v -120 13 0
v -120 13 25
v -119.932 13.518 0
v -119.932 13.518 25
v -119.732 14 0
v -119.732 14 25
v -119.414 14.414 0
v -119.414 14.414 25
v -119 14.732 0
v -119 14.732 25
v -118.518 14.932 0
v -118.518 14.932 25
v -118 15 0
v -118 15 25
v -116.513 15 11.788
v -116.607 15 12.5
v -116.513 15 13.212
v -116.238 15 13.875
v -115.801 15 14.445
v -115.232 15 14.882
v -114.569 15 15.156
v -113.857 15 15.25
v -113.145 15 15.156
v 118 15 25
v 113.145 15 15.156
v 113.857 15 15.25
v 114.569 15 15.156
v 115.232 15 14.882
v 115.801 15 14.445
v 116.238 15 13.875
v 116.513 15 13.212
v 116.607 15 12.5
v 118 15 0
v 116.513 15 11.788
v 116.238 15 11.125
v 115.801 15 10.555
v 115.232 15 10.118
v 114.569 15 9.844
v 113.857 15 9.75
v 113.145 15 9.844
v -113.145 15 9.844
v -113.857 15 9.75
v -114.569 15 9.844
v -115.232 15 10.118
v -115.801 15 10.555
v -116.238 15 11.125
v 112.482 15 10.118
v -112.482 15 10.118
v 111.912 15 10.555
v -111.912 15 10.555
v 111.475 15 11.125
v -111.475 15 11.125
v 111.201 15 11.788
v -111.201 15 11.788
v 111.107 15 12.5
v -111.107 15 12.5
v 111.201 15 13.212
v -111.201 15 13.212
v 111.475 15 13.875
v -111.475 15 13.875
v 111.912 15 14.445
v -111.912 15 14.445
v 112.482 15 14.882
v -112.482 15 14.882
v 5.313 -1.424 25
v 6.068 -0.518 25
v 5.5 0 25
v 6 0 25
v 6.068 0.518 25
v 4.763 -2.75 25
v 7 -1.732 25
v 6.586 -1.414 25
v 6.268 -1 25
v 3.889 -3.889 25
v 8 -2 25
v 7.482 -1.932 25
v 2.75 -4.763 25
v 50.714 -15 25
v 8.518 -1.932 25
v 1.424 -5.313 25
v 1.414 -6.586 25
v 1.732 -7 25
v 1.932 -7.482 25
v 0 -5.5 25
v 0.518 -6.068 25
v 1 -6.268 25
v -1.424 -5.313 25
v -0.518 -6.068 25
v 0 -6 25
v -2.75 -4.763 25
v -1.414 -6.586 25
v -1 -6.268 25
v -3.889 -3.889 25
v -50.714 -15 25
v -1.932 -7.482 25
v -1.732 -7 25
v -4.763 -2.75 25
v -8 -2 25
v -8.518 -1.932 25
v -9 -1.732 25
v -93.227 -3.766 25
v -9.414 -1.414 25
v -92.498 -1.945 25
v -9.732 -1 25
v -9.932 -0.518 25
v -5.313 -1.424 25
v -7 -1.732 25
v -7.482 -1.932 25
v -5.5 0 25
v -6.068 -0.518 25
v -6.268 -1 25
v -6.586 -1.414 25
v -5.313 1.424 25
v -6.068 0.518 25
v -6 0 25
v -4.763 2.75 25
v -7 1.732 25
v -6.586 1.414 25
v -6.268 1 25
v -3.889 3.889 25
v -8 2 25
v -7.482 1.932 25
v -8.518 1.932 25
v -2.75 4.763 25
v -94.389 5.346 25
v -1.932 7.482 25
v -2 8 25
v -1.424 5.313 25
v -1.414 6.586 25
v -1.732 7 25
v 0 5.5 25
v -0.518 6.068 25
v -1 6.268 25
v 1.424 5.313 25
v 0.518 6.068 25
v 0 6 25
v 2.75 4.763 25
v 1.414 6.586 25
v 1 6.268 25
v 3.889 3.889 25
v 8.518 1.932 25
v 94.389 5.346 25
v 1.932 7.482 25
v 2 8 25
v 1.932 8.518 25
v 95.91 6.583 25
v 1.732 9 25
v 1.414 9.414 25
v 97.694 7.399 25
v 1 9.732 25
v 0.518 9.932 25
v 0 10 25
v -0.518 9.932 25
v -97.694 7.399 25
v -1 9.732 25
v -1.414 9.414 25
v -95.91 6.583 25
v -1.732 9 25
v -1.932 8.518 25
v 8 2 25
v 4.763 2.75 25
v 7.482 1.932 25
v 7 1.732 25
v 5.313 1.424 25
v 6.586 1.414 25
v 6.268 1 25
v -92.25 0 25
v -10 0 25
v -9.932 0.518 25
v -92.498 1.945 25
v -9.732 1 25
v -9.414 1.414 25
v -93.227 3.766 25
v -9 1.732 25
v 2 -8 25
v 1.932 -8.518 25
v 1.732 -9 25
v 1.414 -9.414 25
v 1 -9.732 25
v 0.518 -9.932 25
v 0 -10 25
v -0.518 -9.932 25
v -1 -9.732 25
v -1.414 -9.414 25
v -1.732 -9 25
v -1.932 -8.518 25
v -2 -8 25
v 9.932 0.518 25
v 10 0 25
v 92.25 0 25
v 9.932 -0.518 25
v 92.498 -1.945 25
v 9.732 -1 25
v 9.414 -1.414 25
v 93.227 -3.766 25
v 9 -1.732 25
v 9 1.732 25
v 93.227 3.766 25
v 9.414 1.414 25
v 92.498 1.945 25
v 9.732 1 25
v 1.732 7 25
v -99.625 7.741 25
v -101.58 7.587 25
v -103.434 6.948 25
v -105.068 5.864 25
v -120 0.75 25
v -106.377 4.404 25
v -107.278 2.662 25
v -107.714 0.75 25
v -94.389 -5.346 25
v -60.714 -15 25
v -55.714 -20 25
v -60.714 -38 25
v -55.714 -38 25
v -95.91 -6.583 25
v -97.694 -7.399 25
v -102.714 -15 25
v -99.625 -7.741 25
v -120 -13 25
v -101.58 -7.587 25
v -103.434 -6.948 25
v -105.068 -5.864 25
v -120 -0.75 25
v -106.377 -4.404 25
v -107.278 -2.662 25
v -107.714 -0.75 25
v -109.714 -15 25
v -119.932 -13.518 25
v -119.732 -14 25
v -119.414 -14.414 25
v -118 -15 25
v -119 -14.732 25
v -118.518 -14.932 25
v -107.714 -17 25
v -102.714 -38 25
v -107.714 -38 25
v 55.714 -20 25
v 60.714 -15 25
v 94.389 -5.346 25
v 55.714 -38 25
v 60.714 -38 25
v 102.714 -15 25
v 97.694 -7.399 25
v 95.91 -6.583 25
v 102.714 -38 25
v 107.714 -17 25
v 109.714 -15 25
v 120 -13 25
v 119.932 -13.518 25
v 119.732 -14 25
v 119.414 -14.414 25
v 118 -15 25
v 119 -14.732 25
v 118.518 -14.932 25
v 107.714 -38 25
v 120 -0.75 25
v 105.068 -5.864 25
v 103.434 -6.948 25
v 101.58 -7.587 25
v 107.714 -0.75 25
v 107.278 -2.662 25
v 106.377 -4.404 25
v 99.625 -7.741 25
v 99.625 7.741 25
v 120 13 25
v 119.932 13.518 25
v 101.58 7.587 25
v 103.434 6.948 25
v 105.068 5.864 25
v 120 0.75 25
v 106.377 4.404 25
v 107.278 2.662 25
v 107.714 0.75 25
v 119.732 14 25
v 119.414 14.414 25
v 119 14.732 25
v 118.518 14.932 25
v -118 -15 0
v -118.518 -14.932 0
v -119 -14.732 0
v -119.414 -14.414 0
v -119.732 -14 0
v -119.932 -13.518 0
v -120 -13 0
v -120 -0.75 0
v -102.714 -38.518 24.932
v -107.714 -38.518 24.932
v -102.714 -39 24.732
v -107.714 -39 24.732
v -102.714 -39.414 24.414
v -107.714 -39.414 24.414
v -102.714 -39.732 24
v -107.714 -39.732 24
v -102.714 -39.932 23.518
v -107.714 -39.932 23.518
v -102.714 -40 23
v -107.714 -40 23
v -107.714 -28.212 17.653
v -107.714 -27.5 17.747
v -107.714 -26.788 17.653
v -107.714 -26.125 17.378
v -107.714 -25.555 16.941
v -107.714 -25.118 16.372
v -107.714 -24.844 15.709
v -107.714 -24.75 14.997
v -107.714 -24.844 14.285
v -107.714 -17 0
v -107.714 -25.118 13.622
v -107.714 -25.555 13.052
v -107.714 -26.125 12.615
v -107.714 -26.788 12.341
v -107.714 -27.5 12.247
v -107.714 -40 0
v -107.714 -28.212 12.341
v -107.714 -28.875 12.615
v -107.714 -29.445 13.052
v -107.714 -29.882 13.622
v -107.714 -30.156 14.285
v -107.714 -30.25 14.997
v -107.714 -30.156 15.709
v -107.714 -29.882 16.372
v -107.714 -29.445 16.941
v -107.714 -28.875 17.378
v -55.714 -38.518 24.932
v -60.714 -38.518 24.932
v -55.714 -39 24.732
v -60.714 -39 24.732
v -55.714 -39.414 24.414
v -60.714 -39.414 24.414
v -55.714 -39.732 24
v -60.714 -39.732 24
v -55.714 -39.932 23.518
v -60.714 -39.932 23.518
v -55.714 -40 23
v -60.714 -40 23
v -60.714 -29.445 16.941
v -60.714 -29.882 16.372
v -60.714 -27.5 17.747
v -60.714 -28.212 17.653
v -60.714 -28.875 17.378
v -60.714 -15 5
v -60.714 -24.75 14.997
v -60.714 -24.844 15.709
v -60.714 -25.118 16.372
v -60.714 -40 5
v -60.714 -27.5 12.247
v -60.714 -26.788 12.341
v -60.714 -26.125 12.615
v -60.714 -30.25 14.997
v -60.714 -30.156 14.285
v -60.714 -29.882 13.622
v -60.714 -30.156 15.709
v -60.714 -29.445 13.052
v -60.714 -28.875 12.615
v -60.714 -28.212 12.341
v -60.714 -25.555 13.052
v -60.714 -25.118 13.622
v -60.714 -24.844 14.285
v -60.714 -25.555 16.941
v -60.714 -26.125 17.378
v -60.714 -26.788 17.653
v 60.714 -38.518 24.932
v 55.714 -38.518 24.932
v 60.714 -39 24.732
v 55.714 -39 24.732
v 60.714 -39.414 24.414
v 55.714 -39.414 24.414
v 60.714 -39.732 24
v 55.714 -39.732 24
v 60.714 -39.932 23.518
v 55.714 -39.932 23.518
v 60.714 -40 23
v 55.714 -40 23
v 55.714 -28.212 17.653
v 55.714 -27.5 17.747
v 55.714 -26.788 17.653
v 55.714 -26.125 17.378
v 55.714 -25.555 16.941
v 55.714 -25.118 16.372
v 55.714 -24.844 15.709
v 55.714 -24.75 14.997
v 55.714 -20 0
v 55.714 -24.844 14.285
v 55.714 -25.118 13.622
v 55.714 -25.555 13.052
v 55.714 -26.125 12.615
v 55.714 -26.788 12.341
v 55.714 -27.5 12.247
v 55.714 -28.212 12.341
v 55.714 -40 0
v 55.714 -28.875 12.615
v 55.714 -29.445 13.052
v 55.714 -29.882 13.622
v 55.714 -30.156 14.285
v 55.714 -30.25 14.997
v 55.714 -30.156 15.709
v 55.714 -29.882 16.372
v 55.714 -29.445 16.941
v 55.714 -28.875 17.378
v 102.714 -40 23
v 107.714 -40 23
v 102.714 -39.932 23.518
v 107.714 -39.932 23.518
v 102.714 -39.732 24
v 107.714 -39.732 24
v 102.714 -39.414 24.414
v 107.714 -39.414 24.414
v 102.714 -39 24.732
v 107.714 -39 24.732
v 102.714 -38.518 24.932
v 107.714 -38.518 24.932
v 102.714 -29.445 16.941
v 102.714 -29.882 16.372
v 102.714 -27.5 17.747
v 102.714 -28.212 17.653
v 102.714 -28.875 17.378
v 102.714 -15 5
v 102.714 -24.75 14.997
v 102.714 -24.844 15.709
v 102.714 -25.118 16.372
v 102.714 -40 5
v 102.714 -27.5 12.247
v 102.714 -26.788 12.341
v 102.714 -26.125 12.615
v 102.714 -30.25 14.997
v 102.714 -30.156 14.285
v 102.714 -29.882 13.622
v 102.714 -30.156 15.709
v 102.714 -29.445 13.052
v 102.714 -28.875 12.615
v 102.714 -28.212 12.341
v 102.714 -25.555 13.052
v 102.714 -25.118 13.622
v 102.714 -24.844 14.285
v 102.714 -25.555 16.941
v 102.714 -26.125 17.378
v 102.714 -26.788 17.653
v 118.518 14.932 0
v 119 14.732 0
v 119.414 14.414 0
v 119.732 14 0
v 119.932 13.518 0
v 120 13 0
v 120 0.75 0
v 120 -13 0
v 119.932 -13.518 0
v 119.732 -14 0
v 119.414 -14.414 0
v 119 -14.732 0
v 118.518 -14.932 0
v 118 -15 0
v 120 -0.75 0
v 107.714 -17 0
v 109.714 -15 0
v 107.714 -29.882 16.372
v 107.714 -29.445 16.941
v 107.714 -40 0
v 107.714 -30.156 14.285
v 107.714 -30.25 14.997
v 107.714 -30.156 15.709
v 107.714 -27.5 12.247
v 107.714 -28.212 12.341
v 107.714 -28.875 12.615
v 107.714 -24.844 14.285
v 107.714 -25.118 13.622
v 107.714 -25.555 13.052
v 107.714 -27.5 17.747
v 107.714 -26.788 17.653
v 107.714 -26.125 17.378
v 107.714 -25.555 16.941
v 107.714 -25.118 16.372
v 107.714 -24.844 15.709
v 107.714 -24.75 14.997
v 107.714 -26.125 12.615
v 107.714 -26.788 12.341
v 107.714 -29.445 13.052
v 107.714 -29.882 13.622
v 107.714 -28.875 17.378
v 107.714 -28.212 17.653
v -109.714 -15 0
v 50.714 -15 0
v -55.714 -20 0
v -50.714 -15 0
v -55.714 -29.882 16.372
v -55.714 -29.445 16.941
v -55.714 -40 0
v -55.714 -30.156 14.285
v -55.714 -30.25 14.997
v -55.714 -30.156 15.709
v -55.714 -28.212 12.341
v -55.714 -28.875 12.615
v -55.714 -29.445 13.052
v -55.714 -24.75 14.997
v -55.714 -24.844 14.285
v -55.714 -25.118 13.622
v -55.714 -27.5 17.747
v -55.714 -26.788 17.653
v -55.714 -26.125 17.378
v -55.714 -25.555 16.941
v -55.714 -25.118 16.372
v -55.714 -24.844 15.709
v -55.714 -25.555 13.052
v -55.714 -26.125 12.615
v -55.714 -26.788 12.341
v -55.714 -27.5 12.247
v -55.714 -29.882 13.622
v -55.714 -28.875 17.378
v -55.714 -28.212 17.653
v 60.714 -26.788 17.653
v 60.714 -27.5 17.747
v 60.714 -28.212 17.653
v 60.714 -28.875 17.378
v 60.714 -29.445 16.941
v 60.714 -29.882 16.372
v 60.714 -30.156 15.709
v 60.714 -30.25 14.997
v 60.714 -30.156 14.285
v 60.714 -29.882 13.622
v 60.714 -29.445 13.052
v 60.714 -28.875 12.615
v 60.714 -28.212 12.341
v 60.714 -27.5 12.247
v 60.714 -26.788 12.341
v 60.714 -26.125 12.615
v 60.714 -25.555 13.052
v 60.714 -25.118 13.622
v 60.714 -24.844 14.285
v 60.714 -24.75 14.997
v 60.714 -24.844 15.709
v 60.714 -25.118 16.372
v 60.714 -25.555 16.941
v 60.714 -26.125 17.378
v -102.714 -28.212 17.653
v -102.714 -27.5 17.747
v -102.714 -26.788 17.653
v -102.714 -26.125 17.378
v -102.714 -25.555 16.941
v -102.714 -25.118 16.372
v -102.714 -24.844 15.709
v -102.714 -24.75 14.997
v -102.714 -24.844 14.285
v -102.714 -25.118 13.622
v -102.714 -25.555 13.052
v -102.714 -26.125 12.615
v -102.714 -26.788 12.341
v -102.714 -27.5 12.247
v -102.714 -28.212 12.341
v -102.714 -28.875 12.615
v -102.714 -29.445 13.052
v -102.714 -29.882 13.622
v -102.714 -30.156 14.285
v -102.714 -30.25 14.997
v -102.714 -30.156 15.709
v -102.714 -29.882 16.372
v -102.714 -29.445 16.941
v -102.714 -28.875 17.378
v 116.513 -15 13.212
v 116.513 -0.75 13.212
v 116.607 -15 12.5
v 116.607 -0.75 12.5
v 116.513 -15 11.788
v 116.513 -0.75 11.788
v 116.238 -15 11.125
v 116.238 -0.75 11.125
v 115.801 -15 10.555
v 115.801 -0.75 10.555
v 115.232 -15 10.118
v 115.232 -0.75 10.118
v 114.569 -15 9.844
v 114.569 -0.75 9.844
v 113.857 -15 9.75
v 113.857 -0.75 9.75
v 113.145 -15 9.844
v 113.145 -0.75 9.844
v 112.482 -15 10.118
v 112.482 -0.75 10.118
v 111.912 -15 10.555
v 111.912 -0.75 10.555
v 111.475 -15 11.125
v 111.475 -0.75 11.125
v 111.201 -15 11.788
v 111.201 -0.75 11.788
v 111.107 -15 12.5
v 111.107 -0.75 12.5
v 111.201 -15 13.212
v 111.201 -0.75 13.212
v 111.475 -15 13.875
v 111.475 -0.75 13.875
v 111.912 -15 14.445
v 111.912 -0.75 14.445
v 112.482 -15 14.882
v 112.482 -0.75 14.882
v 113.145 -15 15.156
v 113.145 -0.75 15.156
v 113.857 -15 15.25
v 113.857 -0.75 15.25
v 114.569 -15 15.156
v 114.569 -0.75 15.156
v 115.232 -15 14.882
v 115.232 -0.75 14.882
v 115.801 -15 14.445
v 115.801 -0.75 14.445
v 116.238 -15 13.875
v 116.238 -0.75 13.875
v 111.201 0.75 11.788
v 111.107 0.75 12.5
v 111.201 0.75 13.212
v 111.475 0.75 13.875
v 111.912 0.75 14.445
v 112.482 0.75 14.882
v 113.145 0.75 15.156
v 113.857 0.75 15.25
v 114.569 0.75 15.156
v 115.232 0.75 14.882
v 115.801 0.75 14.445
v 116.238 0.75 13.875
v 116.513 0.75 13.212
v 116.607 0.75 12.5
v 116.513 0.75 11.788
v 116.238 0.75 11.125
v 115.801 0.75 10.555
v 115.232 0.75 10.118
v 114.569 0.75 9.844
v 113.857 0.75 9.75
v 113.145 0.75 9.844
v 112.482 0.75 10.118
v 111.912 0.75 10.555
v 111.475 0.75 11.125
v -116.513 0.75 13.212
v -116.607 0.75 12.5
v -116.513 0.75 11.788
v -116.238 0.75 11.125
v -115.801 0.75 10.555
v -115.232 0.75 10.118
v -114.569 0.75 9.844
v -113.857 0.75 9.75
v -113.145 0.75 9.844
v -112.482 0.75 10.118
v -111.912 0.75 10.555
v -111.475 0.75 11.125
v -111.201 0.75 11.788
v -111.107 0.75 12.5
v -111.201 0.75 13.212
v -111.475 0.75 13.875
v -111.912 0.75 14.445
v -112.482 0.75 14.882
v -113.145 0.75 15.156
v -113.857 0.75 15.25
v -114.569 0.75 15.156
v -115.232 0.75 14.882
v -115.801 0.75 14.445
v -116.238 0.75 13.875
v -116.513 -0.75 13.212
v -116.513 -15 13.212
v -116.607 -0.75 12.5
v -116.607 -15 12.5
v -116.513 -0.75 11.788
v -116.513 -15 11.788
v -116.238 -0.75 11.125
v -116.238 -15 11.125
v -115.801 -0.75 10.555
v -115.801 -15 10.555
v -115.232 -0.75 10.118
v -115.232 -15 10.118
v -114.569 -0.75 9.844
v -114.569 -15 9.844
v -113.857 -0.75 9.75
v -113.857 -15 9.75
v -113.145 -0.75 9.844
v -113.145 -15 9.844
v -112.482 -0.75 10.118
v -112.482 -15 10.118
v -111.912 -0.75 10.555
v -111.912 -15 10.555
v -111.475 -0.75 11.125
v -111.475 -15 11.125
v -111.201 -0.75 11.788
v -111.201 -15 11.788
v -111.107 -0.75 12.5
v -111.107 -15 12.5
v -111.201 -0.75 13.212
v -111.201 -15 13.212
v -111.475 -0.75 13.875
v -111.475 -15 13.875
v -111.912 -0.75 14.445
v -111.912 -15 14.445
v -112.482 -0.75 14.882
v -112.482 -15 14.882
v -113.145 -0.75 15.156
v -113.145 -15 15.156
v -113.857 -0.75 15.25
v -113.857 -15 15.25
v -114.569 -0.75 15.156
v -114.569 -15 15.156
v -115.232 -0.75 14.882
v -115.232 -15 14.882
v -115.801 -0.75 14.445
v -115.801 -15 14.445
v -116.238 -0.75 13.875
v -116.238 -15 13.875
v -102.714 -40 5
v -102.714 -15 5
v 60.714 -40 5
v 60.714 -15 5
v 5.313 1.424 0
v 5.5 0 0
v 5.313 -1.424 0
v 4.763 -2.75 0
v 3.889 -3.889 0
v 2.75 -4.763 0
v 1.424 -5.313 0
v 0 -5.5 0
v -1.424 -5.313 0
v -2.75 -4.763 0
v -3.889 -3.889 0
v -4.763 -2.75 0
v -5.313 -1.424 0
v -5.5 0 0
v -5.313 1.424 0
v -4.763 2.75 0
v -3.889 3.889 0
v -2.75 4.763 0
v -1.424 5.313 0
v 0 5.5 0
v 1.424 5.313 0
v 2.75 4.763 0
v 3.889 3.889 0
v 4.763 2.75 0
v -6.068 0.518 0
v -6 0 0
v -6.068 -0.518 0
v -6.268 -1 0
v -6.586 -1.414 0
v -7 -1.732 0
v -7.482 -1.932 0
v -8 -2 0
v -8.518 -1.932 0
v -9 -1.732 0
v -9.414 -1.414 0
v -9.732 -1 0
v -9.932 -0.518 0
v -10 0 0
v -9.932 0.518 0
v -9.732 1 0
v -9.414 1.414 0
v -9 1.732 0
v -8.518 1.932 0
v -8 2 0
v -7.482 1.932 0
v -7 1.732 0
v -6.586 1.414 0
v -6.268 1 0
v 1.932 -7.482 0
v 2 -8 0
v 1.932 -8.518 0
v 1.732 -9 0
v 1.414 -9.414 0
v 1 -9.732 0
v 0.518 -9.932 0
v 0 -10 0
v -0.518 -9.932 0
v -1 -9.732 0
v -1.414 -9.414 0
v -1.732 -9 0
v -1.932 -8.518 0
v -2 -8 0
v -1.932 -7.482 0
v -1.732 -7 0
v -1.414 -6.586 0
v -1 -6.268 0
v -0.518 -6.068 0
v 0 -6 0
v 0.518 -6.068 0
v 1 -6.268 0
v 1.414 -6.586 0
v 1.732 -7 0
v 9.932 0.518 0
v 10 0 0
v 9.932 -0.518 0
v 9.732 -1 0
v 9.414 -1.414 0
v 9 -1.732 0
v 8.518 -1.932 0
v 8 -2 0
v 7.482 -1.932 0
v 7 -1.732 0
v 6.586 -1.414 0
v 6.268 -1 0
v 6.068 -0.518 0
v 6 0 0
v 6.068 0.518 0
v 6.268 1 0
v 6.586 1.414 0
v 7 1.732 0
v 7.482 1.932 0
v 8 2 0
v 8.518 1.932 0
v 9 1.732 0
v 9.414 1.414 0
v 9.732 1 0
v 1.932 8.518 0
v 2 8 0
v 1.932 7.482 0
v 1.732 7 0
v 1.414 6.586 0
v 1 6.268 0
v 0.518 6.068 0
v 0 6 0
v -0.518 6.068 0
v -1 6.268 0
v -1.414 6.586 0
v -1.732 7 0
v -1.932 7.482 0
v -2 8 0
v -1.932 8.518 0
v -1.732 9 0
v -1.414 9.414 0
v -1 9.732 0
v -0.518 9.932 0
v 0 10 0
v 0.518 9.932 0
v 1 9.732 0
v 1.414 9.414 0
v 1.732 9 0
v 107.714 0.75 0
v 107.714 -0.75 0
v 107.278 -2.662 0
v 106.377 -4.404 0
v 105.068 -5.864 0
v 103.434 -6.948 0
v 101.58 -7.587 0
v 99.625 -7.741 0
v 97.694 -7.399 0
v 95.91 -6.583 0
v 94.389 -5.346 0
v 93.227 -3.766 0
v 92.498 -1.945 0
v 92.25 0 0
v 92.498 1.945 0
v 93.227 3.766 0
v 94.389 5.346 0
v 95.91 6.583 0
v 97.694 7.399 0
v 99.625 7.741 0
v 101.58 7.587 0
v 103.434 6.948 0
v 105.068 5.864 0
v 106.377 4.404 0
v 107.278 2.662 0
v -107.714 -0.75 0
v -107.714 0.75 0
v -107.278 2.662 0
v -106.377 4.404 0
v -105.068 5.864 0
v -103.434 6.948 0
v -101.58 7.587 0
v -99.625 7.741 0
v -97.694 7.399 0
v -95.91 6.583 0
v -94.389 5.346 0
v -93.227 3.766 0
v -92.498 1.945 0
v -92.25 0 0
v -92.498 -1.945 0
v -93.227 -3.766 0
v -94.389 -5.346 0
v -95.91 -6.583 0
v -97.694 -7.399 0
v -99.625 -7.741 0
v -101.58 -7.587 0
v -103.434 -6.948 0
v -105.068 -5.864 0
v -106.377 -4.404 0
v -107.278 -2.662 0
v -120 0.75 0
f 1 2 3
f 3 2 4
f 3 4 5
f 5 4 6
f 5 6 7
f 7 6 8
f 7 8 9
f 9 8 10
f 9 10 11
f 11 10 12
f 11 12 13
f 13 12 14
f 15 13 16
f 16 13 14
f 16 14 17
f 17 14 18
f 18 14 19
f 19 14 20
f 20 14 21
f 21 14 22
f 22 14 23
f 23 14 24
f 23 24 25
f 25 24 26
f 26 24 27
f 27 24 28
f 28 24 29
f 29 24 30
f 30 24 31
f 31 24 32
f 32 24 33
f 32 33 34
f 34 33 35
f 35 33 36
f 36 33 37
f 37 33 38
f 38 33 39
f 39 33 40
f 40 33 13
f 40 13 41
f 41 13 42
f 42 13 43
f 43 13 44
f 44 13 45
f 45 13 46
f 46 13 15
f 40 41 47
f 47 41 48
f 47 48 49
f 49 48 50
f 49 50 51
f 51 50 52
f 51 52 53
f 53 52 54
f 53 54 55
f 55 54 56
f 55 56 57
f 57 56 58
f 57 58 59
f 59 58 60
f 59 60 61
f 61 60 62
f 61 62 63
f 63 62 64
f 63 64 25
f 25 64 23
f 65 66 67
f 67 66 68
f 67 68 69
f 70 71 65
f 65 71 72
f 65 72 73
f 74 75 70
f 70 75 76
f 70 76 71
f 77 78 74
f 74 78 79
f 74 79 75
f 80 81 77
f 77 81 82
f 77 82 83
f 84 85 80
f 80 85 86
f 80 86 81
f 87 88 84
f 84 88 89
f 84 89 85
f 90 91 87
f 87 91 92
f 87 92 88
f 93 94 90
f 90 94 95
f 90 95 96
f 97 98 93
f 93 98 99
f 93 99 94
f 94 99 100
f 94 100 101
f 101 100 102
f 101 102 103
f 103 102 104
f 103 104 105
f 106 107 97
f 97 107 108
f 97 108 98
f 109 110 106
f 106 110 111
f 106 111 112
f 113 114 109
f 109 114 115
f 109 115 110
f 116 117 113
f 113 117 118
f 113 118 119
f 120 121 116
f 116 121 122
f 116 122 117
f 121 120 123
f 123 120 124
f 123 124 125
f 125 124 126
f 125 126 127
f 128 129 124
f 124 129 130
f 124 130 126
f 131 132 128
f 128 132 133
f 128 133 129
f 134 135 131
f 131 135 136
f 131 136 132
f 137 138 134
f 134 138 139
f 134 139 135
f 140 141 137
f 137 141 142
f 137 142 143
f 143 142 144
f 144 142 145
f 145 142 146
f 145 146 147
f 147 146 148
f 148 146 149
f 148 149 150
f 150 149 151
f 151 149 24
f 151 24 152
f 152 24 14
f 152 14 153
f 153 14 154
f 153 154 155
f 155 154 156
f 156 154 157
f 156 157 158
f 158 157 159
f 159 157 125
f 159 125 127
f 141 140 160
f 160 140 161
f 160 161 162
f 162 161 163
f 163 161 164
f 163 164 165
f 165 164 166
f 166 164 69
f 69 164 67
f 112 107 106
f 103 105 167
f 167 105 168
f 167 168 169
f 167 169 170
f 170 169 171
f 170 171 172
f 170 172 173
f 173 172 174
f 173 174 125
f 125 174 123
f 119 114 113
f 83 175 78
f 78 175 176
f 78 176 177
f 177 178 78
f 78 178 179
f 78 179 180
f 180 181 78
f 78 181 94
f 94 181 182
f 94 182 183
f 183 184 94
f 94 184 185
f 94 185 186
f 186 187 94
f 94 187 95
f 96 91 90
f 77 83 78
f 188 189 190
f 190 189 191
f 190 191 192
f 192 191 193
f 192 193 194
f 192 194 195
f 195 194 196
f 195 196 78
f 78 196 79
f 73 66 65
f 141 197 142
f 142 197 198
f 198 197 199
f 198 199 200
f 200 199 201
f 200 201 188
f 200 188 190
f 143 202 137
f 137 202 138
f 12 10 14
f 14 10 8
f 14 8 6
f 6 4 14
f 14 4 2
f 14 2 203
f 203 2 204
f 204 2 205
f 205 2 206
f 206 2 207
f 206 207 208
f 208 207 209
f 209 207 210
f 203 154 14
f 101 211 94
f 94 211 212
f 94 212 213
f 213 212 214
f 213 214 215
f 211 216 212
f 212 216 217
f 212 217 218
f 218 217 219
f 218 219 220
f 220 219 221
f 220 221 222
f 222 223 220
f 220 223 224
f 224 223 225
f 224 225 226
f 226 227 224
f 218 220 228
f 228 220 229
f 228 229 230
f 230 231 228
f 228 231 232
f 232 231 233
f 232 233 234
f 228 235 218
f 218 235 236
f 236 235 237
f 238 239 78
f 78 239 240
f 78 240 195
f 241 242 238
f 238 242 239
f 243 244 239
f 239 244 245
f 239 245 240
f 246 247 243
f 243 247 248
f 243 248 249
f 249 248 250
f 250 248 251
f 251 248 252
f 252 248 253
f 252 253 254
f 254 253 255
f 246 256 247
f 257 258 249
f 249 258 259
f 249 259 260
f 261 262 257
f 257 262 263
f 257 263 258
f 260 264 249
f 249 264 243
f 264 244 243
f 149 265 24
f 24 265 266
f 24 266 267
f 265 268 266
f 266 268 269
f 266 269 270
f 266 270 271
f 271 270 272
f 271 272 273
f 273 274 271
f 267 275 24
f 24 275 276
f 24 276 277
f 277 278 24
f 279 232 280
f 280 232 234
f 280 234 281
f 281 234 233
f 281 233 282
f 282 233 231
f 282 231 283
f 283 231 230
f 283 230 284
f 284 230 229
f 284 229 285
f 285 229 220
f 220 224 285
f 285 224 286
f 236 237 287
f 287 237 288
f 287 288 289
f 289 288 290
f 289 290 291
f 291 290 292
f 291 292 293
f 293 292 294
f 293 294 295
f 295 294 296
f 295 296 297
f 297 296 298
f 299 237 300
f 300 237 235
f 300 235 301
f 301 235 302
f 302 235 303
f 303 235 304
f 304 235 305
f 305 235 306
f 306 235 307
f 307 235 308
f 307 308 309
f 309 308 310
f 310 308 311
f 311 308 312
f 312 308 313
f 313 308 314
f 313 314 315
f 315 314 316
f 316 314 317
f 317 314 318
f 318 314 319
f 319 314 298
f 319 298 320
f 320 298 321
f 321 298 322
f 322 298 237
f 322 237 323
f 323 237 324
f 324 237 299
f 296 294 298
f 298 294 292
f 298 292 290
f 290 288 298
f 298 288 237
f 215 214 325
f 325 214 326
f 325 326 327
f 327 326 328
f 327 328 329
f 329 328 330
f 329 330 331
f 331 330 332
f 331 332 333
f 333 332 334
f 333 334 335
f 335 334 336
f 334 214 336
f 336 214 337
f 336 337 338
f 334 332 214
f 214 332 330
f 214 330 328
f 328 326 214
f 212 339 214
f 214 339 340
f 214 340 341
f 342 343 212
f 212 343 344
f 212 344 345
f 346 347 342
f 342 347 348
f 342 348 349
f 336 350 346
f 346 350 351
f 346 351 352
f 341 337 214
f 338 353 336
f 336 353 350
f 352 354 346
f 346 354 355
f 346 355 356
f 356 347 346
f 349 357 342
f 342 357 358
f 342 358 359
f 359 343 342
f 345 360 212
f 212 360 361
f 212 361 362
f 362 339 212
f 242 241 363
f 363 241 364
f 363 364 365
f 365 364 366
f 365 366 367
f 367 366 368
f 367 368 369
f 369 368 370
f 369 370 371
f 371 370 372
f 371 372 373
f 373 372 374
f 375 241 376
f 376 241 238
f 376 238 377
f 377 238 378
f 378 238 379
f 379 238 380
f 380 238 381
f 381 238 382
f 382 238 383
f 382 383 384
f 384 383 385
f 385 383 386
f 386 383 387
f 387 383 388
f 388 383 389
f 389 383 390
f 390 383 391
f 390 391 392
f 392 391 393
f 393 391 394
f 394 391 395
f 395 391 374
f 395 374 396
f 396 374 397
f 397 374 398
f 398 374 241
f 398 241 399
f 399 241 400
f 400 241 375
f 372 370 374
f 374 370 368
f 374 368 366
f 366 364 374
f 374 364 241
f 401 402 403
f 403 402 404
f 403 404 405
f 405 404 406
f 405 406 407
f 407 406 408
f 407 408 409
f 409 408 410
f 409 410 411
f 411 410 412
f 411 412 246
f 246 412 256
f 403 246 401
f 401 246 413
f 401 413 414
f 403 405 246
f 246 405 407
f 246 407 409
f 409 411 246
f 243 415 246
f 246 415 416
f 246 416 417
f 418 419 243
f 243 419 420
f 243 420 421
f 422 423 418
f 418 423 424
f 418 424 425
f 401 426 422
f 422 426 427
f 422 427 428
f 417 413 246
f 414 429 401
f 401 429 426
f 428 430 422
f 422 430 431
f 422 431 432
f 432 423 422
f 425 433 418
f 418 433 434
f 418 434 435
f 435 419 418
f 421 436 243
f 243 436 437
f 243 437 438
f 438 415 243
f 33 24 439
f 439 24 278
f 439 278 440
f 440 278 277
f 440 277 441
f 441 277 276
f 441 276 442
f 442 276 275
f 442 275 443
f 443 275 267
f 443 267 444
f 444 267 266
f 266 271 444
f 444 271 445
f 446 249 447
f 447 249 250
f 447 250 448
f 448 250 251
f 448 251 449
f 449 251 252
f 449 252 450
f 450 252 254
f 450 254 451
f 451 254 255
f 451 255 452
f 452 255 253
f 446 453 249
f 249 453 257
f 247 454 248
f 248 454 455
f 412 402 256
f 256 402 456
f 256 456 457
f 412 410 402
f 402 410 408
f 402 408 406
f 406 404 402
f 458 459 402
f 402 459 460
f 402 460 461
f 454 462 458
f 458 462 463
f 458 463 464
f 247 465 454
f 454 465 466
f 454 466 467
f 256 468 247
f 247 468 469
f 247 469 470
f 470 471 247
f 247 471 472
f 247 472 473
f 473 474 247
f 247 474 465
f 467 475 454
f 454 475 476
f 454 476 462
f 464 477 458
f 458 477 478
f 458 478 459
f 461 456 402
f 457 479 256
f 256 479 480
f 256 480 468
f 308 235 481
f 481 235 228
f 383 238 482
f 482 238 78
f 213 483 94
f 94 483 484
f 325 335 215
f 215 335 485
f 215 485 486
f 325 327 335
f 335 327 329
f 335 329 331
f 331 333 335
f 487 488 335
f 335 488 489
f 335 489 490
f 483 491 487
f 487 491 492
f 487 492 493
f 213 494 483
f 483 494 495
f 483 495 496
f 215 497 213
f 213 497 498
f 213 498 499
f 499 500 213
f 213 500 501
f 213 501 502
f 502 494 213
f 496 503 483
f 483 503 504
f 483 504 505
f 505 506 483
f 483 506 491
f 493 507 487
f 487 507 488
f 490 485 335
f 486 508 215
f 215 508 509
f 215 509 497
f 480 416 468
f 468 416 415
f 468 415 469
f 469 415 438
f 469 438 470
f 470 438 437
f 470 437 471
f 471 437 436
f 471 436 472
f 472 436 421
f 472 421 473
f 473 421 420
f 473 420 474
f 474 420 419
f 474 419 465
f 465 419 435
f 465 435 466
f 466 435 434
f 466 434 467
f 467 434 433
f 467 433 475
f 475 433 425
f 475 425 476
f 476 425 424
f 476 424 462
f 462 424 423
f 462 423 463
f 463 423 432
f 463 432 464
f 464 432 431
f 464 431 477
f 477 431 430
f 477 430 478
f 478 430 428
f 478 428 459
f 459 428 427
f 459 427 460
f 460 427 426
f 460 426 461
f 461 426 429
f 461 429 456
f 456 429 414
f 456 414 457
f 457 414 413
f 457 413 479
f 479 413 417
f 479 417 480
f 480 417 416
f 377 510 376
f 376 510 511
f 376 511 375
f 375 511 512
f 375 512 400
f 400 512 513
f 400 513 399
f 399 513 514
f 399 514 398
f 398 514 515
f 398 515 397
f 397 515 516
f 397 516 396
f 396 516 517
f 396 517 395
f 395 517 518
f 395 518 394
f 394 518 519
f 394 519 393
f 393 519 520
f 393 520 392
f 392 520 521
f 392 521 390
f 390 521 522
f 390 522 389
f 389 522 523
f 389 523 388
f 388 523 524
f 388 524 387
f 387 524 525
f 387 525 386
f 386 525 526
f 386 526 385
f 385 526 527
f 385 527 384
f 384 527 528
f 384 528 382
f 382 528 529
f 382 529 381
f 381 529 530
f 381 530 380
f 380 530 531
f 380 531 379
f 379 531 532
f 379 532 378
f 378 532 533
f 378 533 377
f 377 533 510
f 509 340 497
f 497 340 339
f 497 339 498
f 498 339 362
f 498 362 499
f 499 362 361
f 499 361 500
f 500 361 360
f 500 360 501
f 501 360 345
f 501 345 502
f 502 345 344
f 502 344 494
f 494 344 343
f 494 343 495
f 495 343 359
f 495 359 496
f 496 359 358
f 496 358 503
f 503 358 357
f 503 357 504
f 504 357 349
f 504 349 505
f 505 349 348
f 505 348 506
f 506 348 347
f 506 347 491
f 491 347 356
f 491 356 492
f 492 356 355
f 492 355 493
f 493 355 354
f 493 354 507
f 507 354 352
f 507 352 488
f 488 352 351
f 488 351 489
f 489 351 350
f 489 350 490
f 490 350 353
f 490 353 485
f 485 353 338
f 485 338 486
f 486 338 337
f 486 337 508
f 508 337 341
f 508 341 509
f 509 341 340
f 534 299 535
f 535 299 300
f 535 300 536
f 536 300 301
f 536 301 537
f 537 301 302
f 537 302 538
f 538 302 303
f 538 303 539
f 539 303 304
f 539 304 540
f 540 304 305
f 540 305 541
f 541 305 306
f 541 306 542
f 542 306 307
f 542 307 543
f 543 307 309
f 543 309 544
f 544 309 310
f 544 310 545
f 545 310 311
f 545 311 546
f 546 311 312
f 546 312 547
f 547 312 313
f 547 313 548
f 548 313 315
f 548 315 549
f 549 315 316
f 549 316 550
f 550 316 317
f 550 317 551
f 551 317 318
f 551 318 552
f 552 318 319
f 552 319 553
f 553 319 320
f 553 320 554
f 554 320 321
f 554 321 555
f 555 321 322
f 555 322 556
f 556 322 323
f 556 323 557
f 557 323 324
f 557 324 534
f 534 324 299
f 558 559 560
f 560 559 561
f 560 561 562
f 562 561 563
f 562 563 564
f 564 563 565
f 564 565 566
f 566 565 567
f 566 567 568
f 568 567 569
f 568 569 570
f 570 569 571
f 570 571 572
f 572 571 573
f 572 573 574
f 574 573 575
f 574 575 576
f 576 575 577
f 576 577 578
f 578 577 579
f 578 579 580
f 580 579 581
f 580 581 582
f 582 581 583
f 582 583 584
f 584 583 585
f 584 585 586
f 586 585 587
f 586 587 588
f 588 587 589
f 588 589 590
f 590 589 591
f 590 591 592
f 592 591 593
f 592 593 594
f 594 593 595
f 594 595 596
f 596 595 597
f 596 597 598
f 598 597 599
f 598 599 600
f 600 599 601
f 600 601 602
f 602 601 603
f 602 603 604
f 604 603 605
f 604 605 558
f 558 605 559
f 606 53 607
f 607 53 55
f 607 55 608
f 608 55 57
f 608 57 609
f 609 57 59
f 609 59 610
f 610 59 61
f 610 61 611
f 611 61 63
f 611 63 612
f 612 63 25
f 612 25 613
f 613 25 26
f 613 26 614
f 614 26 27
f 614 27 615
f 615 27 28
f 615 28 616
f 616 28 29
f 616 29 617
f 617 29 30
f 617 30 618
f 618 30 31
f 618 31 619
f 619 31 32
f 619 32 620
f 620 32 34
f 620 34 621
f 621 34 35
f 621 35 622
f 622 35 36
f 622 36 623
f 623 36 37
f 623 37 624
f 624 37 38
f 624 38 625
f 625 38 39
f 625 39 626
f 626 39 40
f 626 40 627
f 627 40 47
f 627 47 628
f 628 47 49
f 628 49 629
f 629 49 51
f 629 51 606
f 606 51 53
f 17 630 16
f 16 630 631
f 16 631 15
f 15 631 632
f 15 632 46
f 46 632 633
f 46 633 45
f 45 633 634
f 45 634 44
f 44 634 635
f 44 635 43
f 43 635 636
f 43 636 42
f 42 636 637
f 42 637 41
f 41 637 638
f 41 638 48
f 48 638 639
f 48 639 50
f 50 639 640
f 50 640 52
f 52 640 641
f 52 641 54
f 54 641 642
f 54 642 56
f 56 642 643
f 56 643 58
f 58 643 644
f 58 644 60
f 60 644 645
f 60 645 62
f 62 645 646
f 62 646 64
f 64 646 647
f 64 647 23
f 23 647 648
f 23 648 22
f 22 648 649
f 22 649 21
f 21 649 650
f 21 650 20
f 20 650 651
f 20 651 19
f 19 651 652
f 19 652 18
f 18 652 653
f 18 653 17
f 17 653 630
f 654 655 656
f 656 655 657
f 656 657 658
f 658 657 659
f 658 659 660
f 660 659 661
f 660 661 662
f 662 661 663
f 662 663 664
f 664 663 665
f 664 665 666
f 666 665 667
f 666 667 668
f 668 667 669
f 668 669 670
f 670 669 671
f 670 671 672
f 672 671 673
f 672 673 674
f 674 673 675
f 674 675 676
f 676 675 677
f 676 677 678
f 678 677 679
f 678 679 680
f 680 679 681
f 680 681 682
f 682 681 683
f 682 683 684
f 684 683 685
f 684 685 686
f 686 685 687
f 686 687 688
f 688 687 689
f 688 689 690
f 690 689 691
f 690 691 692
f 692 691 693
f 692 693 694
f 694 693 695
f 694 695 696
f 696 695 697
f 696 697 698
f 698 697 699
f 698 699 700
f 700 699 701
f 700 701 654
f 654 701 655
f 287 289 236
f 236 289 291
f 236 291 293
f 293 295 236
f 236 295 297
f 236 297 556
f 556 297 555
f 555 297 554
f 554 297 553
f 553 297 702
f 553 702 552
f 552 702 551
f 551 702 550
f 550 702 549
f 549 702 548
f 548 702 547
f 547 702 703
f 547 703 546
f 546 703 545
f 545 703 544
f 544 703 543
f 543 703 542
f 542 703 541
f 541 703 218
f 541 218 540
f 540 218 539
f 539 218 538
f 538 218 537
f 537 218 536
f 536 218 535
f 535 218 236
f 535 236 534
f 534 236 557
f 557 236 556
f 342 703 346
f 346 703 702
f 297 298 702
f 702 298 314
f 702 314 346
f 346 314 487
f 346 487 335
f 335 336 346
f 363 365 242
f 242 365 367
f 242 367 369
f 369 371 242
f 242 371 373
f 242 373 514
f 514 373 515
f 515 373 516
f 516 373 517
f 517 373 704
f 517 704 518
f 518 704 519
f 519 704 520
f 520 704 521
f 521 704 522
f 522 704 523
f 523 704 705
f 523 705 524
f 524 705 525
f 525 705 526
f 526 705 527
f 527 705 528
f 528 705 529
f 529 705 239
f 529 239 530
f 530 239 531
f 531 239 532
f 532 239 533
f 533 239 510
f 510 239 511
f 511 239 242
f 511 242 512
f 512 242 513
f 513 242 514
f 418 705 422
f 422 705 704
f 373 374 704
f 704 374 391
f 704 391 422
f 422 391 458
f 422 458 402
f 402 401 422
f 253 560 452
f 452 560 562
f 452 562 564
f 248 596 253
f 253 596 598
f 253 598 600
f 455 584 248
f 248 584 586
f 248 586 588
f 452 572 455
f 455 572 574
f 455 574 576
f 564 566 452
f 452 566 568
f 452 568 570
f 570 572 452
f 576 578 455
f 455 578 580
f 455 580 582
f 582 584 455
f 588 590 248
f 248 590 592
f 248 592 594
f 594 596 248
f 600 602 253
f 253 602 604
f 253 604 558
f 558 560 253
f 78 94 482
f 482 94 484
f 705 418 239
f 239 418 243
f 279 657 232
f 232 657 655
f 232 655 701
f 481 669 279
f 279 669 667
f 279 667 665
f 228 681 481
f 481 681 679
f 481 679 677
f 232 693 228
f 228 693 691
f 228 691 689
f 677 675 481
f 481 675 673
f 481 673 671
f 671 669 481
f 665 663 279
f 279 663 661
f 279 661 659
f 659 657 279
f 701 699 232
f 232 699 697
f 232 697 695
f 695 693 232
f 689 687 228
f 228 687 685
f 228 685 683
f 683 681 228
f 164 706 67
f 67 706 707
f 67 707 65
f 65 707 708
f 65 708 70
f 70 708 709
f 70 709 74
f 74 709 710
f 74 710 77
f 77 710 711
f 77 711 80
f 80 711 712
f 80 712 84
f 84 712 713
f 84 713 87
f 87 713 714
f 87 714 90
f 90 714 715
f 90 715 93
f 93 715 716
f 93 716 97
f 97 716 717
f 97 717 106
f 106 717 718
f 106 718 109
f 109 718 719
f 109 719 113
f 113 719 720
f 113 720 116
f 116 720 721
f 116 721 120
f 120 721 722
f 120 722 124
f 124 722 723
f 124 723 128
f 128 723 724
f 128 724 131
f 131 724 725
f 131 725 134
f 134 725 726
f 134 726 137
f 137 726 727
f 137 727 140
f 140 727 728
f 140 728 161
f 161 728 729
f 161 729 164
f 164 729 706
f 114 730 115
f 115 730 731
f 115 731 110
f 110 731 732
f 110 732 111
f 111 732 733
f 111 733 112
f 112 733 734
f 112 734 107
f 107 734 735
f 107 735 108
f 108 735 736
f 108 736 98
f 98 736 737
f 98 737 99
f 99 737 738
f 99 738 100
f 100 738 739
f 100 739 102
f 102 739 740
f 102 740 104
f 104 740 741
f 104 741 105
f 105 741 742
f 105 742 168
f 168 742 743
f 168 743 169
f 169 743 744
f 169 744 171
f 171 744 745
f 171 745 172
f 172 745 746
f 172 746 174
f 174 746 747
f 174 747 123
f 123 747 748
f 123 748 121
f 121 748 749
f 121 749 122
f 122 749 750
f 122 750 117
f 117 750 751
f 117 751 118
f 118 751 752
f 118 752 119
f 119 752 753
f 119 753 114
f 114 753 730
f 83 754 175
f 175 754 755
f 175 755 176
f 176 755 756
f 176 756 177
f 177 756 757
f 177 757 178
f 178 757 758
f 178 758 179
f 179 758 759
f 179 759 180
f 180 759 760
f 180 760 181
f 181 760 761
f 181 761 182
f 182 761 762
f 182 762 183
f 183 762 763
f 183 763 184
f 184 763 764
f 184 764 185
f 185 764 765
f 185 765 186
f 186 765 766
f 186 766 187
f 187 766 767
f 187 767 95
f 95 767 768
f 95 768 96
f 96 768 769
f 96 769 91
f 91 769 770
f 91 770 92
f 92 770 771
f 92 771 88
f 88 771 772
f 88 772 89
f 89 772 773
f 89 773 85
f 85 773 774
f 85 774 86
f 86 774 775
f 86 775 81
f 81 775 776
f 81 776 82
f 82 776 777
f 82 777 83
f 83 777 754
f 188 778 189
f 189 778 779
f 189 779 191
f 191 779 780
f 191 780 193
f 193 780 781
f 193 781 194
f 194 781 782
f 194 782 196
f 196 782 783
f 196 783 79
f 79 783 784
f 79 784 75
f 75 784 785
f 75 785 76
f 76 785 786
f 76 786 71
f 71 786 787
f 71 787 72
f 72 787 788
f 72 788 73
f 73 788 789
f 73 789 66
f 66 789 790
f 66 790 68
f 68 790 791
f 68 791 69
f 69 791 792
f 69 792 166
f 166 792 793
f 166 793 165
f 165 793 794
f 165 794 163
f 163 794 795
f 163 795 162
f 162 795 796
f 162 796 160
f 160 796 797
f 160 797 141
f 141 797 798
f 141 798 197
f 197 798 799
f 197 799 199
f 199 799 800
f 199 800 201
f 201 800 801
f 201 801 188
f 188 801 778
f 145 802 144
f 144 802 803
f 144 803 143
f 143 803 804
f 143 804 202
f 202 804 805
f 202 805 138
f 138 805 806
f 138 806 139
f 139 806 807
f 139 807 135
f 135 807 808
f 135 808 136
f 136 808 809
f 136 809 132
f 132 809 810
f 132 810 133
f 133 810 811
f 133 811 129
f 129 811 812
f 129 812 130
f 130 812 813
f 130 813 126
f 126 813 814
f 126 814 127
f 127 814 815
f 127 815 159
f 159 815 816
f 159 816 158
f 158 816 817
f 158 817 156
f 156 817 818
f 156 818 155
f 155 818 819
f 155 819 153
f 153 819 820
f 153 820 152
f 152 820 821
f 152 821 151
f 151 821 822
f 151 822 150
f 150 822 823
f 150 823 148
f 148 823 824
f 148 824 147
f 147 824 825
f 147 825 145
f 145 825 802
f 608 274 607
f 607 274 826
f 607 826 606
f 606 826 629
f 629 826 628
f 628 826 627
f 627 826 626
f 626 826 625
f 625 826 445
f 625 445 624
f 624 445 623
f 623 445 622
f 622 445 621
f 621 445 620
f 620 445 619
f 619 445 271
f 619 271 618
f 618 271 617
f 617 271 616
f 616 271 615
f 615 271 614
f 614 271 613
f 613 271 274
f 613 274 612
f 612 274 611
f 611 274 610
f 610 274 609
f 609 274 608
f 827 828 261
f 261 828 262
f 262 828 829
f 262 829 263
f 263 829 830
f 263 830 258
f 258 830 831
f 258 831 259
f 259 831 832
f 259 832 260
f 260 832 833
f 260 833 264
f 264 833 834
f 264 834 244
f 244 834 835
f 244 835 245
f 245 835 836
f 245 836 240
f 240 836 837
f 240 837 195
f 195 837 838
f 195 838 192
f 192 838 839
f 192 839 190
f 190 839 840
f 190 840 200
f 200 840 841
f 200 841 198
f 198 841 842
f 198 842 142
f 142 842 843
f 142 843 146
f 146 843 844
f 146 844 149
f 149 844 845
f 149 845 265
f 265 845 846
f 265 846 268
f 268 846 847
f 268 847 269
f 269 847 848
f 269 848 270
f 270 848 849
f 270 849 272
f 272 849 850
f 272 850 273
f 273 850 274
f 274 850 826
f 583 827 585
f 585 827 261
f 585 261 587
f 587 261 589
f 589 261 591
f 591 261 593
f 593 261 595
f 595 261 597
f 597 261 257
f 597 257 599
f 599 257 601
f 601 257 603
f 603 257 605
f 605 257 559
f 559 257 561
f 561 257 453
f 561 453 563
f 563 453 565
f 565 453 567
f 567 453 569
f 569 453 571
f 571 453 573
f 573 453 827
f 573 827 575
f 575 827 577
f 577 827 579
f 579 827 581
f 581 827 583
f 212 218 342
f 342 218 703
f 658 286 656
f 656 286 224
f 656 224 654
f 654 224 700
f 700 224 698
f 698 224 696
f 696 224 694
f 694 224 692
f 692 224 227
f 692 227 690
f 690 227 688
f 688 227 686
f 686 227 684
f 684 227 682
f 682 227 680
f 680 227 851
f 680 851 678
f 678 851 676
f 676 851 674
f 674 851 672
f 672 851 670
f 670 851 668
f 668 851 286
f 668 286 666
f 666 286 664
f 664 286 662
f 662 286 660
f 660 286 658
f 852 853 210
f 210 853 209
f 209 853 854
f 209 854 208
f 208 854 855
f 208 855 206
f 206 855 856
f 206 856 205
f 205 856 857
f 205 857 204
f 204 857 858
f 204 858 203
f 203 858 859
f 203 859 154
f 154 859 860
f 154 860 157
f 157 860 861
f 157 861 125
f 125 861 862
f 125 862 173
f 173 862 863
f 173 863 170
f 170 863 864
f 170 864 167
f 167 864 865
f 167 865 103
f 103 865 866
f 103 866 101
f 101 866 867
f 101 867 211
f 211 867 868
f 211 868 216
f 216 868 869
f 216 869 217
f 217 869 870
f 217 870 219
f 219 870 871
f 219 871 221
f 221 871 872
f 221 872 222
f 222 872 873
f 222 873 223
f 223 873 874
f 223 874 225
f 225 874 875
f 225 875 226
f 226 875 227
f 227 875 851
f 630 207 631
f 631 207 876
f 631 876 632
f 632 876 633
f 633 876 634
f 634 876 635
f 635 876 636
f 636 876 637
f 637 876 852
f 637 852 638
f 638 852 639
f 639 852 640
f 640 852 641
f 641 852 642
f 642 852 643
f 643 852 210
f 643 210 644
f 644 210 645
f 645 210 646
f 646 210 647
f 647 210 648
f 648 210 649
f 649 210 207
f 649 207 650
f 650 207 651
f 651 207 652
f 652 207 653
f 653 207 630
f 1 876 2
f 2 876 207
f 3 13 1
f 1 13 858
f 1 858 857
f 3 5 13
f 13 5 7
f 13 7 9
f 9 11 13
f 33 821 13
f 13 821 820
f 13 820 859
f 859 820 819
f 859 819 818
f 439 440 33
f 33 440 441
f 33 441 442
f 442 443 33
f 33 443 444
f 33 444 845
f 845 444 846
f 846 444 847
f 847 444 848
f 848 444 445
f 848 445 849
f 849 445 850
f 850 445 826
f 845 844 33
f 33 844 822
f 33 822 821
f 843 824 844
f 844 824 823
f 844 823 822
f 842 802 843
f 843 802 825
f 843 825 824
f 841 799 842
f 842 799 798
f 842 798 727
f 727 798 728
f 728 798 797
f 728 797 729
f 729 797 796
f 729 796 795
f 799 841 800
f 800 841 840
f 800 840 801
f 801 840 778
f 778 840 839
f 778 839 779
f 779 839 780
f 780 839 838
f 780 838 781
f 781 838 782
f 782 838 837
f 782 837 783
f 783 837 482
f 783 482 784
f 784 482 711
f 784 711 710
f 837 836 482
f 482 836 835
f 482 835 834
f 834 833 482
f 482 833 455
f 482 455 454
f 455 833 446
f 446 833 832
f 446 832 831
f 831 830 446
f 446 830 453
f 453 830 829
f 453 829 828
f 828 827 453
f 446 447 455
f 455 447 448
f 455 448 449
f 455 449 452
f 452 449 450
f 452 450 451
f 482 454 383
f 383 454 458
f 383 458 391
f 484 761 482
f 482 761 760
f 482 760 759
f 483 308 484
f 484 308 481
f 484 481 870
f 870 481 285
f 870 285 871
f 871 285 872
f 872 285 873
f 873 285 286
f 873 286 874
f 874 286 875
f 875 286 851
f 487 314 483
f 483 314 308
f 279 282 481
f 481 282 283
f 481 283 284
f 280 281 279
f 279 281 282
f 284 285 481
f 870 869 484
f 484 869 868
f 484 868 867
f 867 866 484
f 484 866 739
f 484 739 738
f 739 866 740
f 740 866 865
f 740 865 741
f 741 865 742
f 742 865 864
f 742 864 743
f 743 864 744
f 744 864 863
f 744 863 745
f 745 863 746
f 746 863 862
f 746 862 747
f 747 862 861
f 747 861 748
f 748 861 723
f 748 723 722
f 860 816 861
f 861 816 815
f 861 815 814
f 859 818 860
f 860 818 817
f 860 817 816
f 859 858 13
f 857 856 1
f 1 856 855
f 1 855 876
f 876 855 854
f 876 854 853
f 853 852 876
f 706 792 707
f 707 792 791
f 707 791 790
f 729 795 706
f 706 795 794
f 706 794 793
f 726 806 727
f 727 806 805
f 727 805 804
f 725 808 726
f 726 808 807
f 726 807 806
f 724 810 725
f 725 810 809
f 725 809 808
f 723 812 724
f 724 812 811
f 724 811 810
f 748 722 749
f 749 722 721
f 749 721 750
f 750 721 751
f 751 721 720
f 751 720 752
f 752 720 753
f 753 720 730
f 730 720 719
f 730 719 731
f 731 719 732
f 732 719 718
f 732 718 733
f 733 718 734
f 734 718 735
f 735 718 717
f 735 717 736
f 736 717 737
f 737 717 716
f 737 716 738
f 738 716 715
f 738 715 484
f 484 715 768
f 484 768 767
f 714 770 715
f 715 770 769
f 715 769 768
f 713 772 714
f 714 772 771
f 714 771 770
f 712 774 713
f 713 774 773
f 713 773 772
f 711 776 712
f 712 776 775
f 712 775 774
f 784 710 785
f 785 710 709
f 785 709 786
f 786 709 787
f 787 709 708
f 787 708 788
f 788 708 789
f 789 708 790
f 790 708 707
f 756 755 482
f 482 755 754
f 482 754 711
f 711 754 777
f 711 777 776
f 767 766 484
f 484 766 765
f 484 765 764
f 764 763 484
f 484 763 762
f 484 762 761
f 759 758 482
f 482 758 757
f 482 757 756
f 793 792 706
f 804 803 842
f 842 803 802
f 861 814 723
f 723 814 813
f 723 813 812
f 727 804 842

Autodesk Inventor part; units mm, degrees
ref_plane "YZ Plane" through (0, 0, 0) normal (1, 0, 0) x (0, 1, 0)
ref_plane "XZ Plane" through (0, 0, 0) normal (0, 1, 0) x (-1, 0, 0)
ref_plane "XY Plane" through (0, 0, 0) normal (0, 0, 1) x (1, 0, 0)
sketch "Sketch1" plane through (0, 0, 0) normal (0, 0, 1) x (1, 0, 0)
  line L0 (-120, 15) -> (120, 15)
  line L1 (120, -15) -> (-120, -15)
  line L2 (-120, 15) -> (120, -15) construction
  line L3 (120, 15) -> (-120, -15) construction
  arc A0 (-107.7136, -0.75) -> (-107.7136, 0.75) centre (-100, 0) ccw
  line L4 (0, -11.513) -> (0, 11.513)
  line L5 (-107.7136, 0.75) -> (-120, 0.75)
  line L6 (-107.7136, -0.75) -> (-120, -0.75)
  line L7 (-120, -15) -> (-120, -0.75)
  line L8 (-120, 0.75) -> (-120, 15)
  arc A1 (107.7136, 0.75) -> (107.7136, -0.75) centre (100, 0) ccw
  line L9 (107.7136, 0.75) -> (120, 0.75)
  line L10 (107.7136, -0.75) -> (120, -0.75)
  line L11 (120, 15) -> (120, 0.75)
  line L12 (120, -0.75) -> (120, -15)
  circle A2 centre (0, 0) radius 5.5
  circle A3 centre (0, 8) radius 2
  circle A4 centre (8, 0) radius 2
  circle A5 centre (0, -8) radius 2
  circle A6 centre (-8, 0) radius 2
  dimension "d0" = 240
  dimension "d1" = 30
  dimension "d3" = 15.5
  dimension "d6" = 100
  dimension "d7" = 11
  dimension "d9" = 4
  dimension "d10" = 4
  dimension "d11" = 4
  dimension "d12" = 4
extrude "Extrusion1" add sketch "Sketch1" along normal blind 25
sketch "Sketch2" plane through (-120, -15, 0) normal (0, -1, 0) x (1, 0, 0)
  line L0 (120, 0) -> (120, 25)
  line L1 (12.2864, 0) -> (12.2864, 25) projected
  line L2 (0, 25) -> (240, 25) projected
  line L3 (12.2864, 0) -> (64.2864, 0)
  line L4 (64.2864, 0) -> (64.2864, 25)
  line L5 (12.2864, 25) -> (12.2864, 0)
  line L6 (59.2864, 25) -> (59.2864, 5)
  line L7 (59.2864, 5) -> (17.2864, 5)
  line L8 (17.2864, 5) -> (17.2864, 25)
  line L9 (64.2864, 25) -> (59.2864, 25)
  line L10 (17.2864, 25) -> (12.2864, 25)
  line L11 (227.7136, 0) -> (227.7136, 25)
  line L12 (240, 25) -> (0, 25)
  line L13 (227.7136, 0) -> (175.7136, 0)
  line L14 (175.7136, 0) -> (175.7136, 25)
  line L15 (227.7136, 25) -> (227.7136, 0)
  line L16 (180.7136, 25) -> (180.7136, 5)
  line L17 (180.7136, 5) -> (222.7136, 5)
  line L18 (222.7136, 5) -> (222.7136, 25)
  line L19 (175.7136, 25) -> (180.7136, 25)
  line L20 (222.7136, 25) -> (227.7136, 25)
  line L21 (240, 0) -> (0, 0) projected
  dimension "d23" = 52
  dimension "d24" = 5
  dimension "d28" = 0
  dimension "d30" = 20
sketch "Sketch3" plane through (120, -15, 0) normal (0, -1, 0) x (1, 0, 0)
  point P0 (-120, 0)
extrude "Extrusion4" add sketch "Sketch2" along normal blind 25 contours L14 L2 L16 L17 L18 L11 L13 | L3 L1 L2 L8 L7 L6 L4
sketch "Sketch4" plane through (120, -15, 0) normal (0, -1, 0) x (1, 0, 0)
  line L0 (-240, 0) -> (0, 0) projected
  line L1 (-12.2864, 25) -> (0, 25) projected
  circle A0 centre (-6.1432, 12.5) radius 2.75
  line L2 (-120, 0) -> (-120, 25)
  line L3 (-122, 0) -> (-122, 25) projected
  circle A1 centre (-233.8568, 12.5) radius 2.75
  dimension "d33" = 5.5
hole "Hole1" at (113.8568, -15, 12.5) at (-113.8568, -15, 12.5) direction (0, 1, 0) diameter 5.5 end through all
sketch "Sketch5" plane through (-107.7136, -15, 0) normal (-1, 0, 0) x (0, 0, 1)
  line L0 (5, 0) -> (5, -25) projected
  line L1 (5, 0) -> (24.9936, -25)
  circle A0 centre (14.9968, -12.5) radius 2.75
  point P0 (0, 15)
  dimension "d41" = 5.5
extrude "Extrusion5" cut sketch "Sketch5" against normal through all
chamfer "Chamfer2" distance 5 angle 45 2 edges at (-55.7136, -15, 12.5) (55.7136, -15, 12.5)
chamfer "Chamfer3" distance 2 angle 45 2 edges at (-107.7136, -15, 12.5) (107.7136, -15, 12.5)
fillet "Fillet2" radius 2 8 edges at (120, -15, 12.5) (120, 15, 12.5) (105.2136, -40, 25) (58.2136, -40, 25) (-58.2136, -40, 25) (-105.2136, -40, 25) (-120, -15, 12.5) (-120, 15, 12.5)
properties part number "Trava Z"
